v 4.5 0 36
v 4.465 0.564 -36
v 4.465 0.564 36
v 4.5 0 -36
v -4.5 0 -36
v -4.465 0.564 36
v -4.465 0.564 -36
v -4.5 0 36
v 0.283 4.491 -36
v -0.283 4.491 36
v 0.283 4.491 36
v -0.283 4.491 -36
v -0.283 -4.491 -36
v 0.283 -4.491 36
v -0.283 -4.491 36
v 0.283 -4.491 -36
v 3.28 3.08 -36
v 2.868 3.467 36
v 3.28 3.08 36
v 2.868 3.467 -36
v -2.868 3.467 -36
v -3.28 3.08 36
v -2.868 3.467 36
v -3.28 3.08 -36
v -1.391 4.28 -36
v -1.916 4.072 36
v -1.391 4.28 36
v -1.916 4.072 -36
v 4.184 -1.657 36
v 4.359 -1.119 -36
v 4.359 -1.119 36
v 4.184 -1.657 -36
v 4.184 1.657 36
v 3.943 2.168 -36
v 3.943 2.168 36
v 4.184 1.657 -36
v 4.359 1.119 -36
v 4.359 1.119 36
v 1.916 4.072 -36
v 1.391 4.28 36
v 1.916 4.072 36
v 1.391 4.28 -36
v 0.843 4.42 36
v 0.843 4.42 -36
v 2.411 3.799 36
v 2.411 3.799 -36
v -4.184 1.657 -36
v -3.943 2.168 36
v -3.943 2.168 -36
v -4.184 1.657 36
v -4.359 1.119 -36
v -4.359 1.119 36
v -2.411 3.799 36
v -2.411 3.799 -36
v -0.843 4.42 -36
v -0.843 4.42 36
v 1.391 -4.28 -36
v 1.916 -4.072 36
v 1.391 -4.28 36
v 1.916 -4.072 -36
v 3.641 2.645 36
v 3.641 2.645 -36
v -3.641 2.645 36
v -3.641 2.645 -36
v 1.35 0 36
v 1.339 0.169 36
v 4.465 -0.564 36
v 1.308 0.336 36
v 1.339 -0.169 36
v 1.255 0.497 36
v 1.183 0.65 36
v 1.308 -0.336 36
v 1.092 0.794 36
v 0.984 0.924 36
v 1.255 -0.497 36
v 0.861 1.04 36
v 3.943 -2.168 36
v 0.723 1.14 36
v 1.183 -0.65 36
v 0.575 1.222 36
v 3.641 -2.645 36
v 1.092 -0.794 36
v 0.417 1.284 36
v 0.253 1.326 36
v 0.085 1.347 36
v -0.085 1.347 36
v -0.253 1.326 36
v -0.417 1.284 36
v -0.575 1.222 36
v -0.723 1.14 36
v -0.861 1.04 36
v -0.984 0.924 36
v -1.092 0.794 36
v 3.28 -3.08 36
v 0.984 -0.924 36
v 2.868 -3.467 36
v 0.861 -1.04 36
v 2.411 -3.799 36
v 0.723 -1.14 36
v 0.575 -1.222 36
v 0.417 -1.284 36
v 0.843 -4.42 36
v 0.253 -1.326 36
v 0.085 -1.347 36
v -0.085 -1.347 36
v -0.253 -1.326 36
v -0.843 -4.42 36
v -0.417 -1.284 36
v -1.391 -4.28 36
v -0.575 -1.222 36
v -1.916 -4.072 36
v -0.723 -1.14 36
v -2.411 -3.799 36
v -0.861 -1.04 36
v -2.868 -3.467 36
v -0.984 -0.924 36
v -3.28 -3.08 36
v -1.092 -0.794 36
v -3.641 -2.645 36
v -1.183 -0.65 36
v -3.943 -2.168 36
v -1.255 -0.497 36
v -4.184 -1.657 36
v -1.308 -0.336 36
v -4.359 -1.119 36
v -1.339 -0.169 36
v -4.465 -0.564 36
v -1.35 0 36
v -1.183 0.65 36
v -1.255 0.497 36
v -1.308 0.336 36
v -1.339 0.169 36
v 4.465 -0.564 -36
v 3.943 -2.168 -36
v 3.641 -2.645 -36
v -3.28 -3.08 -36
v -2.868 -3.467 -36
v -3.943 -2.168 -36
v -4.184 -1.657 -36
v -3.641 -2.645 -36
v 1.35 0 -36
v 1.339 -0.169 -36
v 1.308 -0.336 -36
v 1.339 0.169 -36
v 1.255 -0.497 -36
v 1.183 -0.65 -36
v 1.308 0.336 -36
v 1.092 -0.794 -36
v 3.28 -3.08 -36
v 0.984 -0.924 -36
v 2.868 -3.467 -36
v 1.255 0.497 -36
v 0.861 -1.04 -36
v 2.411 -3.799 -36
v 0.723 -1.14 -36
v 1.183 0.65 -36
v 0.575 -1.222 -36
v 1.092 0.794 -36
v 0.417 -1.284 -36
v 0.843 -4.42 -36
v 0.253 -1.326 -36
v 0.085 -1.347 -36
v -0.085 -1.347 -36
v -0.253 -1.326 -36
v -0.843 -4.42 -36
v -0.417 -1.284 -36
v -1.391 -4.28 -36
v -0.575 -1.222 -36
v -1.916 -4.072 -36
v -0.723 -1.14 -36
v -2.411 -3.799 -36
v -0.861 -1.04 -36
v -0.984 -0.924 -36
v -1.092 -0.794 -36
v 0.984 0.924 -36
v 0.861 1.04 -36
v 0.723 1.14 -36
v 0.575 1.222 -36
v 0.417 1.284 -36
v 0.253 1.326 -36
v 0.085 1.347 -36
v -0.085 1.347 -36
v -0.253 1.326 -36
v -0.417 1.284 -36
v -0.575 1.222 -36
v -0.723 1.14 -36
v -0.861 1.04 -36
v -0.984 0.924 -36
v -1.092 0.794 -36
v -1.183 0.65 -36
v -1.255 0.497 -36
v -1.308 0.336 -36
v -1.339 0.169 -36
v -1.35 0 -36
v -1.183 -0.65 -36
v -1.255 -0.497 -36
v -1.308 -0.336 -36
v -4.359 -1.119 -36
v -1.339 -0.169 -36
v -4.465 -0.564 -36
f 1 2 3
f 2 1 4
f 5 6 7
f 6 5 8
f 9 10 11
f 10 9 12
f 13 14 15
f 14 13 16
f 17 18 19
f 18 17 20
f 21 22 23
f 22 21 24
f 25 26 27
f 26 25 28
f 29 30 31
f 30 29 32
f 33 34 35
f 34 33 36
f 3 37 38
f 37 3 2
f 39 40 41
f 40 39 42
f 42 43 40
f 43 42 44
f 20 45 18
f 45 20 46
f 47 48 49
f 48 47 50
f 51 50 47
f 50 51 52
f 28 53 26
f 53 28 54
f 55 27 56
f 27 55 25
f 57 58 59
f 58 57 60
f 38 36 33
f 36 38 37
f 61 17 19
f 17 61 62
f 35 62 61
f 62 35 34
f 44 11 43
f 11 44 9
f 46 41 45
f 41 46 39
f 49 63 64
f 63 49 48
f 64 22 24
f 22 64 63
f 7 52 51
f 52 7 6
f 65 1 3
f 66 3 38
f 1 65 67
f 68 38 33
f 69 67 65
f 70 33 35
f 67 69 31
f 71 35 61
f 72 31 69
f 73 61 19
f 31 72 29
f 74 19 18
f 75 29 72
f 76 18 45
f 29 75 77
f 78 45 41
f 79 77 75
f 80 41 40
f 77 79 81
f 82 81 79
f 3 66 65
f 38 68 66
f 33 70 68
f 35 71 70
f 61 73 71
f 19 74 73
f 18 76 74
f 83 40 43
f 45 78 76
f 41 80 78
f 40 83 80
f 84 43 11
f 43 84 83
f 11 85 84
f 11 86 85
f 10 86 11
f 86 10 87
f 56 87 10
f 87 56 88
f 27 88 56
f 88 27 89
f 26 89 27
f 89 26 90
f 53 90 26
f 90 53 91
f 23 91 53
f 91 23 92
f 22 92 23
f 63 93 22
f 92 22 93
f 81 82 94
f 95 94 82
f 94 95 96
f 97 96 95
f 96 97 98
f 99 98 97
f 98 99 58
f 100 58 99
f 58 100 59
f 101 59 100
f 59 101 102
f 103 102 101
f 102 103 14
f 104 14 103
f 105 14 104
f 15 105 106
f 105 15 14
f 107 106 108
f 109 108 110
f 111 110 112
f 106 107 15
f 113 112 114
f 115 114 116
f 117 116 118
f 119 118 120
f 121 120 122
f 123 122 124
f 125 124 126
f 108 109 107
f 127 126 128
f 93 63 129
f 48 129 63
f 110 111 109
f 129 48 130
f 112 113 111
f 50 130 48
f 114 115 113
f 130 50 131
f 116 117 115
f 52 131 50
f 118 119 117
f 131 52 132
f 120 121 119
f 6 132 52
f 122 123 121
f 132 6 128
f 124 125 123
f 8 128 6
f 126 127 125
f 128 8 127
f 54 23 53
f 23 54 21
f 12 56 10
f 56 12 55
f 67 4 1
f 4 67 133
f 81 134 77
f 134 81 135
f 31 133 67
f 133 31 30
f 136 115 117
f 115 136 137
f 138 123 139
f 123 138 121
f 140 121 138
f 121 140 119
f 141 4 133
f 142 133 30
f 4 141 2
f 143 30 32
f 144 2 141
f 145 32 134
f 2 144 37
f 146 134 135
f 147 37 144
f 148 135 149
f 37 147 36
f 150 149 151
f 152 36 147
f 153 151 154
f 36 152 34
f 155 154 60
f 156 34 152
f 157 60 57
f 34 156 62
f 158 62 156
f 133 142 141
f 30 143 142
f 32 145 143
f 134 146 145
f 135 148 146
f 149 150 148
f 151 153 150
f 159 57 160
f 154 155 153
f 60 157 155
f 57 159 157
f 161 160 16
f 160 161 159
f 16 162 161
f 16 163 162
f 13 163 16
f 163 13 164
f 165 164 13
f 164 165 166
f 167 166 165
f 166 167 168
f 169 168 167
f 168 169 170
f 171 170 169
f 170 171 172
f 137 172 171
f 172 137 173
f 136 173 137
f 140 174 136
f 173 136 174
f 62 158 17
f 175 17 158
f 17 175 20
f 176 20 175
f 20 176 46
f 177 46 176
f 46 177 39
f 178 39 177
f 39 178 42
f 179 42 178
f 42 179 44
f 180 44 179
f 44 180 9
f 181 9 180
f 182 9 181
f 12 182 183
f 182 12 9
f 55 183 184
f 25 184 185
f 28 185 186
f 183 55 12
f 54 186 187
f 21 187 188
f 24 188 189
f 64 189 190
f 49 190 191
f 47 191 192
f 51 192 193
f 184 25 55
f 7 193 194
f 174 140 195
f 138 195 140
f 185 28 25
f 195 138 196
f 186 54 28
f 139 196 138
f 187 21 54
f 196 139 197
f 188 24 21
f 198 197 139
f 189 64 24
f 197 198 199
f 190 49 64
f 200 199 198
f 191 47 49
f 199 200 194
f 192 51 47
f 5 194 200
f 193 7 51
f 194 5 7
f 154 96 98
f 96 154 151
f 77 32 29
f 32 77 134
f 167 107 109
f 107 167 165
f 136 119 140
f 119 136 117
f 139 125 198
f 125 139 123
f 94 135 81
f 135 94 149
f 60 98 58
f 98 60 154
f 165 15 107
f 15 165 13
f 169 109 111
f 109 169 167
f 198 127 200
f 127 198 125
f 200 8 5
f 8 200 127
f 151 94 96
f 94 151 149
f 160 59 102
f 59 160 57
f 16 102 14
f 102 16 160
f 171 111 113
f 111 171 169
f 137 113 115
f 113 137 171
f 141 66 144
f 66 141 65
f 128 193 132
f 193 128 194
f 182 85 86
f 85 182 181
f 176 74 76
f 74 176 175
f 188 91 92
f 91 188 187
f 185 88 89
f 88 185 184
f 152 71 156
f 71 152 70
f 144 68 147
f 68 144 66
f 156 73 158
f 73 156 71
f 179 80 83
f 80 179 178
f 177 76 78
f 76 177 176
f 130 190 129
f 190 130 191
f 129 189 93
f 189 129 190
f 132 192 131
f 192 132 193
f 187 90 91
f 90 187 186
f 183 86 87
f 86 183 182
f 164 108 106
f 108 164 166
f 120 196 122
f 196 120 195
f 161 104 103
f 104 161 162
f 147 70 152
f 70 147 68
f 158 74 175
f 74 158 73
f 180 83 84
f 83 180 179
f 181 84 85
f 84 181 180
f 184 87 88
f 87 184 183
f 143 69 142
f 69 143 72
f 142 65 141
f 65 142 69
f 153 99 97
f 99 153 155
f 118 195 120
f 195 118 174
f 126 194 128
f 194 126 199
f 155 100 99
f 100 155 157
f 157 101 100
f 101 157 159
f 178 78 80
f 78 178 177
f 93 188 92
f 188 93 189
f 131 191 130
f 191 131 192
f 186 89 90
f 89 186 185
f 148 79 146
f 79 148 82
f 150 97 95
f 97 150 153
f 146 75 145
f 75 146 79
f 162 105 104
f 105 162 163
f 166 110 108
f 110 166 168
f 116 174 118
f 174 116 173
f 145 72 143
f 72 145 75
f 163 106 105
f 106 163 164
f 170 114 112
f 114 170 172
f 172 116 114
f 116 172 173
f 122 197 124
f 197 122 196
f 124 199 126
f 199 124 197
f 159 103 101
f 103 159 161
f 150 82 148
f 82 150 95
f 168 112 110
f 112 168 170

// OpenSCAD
$fn = 50;


difference() {
	union() {
		translate(v = [0, 0, -36.0000000000]) {
			cylinder(h = 72, r = 4.5000000000);
		}
	}
	union() {
		translate(v = [0, 0, -100.0000000000]) {
			cylinder(h = 200, r = 1.3500000000);
		}
	}
}
